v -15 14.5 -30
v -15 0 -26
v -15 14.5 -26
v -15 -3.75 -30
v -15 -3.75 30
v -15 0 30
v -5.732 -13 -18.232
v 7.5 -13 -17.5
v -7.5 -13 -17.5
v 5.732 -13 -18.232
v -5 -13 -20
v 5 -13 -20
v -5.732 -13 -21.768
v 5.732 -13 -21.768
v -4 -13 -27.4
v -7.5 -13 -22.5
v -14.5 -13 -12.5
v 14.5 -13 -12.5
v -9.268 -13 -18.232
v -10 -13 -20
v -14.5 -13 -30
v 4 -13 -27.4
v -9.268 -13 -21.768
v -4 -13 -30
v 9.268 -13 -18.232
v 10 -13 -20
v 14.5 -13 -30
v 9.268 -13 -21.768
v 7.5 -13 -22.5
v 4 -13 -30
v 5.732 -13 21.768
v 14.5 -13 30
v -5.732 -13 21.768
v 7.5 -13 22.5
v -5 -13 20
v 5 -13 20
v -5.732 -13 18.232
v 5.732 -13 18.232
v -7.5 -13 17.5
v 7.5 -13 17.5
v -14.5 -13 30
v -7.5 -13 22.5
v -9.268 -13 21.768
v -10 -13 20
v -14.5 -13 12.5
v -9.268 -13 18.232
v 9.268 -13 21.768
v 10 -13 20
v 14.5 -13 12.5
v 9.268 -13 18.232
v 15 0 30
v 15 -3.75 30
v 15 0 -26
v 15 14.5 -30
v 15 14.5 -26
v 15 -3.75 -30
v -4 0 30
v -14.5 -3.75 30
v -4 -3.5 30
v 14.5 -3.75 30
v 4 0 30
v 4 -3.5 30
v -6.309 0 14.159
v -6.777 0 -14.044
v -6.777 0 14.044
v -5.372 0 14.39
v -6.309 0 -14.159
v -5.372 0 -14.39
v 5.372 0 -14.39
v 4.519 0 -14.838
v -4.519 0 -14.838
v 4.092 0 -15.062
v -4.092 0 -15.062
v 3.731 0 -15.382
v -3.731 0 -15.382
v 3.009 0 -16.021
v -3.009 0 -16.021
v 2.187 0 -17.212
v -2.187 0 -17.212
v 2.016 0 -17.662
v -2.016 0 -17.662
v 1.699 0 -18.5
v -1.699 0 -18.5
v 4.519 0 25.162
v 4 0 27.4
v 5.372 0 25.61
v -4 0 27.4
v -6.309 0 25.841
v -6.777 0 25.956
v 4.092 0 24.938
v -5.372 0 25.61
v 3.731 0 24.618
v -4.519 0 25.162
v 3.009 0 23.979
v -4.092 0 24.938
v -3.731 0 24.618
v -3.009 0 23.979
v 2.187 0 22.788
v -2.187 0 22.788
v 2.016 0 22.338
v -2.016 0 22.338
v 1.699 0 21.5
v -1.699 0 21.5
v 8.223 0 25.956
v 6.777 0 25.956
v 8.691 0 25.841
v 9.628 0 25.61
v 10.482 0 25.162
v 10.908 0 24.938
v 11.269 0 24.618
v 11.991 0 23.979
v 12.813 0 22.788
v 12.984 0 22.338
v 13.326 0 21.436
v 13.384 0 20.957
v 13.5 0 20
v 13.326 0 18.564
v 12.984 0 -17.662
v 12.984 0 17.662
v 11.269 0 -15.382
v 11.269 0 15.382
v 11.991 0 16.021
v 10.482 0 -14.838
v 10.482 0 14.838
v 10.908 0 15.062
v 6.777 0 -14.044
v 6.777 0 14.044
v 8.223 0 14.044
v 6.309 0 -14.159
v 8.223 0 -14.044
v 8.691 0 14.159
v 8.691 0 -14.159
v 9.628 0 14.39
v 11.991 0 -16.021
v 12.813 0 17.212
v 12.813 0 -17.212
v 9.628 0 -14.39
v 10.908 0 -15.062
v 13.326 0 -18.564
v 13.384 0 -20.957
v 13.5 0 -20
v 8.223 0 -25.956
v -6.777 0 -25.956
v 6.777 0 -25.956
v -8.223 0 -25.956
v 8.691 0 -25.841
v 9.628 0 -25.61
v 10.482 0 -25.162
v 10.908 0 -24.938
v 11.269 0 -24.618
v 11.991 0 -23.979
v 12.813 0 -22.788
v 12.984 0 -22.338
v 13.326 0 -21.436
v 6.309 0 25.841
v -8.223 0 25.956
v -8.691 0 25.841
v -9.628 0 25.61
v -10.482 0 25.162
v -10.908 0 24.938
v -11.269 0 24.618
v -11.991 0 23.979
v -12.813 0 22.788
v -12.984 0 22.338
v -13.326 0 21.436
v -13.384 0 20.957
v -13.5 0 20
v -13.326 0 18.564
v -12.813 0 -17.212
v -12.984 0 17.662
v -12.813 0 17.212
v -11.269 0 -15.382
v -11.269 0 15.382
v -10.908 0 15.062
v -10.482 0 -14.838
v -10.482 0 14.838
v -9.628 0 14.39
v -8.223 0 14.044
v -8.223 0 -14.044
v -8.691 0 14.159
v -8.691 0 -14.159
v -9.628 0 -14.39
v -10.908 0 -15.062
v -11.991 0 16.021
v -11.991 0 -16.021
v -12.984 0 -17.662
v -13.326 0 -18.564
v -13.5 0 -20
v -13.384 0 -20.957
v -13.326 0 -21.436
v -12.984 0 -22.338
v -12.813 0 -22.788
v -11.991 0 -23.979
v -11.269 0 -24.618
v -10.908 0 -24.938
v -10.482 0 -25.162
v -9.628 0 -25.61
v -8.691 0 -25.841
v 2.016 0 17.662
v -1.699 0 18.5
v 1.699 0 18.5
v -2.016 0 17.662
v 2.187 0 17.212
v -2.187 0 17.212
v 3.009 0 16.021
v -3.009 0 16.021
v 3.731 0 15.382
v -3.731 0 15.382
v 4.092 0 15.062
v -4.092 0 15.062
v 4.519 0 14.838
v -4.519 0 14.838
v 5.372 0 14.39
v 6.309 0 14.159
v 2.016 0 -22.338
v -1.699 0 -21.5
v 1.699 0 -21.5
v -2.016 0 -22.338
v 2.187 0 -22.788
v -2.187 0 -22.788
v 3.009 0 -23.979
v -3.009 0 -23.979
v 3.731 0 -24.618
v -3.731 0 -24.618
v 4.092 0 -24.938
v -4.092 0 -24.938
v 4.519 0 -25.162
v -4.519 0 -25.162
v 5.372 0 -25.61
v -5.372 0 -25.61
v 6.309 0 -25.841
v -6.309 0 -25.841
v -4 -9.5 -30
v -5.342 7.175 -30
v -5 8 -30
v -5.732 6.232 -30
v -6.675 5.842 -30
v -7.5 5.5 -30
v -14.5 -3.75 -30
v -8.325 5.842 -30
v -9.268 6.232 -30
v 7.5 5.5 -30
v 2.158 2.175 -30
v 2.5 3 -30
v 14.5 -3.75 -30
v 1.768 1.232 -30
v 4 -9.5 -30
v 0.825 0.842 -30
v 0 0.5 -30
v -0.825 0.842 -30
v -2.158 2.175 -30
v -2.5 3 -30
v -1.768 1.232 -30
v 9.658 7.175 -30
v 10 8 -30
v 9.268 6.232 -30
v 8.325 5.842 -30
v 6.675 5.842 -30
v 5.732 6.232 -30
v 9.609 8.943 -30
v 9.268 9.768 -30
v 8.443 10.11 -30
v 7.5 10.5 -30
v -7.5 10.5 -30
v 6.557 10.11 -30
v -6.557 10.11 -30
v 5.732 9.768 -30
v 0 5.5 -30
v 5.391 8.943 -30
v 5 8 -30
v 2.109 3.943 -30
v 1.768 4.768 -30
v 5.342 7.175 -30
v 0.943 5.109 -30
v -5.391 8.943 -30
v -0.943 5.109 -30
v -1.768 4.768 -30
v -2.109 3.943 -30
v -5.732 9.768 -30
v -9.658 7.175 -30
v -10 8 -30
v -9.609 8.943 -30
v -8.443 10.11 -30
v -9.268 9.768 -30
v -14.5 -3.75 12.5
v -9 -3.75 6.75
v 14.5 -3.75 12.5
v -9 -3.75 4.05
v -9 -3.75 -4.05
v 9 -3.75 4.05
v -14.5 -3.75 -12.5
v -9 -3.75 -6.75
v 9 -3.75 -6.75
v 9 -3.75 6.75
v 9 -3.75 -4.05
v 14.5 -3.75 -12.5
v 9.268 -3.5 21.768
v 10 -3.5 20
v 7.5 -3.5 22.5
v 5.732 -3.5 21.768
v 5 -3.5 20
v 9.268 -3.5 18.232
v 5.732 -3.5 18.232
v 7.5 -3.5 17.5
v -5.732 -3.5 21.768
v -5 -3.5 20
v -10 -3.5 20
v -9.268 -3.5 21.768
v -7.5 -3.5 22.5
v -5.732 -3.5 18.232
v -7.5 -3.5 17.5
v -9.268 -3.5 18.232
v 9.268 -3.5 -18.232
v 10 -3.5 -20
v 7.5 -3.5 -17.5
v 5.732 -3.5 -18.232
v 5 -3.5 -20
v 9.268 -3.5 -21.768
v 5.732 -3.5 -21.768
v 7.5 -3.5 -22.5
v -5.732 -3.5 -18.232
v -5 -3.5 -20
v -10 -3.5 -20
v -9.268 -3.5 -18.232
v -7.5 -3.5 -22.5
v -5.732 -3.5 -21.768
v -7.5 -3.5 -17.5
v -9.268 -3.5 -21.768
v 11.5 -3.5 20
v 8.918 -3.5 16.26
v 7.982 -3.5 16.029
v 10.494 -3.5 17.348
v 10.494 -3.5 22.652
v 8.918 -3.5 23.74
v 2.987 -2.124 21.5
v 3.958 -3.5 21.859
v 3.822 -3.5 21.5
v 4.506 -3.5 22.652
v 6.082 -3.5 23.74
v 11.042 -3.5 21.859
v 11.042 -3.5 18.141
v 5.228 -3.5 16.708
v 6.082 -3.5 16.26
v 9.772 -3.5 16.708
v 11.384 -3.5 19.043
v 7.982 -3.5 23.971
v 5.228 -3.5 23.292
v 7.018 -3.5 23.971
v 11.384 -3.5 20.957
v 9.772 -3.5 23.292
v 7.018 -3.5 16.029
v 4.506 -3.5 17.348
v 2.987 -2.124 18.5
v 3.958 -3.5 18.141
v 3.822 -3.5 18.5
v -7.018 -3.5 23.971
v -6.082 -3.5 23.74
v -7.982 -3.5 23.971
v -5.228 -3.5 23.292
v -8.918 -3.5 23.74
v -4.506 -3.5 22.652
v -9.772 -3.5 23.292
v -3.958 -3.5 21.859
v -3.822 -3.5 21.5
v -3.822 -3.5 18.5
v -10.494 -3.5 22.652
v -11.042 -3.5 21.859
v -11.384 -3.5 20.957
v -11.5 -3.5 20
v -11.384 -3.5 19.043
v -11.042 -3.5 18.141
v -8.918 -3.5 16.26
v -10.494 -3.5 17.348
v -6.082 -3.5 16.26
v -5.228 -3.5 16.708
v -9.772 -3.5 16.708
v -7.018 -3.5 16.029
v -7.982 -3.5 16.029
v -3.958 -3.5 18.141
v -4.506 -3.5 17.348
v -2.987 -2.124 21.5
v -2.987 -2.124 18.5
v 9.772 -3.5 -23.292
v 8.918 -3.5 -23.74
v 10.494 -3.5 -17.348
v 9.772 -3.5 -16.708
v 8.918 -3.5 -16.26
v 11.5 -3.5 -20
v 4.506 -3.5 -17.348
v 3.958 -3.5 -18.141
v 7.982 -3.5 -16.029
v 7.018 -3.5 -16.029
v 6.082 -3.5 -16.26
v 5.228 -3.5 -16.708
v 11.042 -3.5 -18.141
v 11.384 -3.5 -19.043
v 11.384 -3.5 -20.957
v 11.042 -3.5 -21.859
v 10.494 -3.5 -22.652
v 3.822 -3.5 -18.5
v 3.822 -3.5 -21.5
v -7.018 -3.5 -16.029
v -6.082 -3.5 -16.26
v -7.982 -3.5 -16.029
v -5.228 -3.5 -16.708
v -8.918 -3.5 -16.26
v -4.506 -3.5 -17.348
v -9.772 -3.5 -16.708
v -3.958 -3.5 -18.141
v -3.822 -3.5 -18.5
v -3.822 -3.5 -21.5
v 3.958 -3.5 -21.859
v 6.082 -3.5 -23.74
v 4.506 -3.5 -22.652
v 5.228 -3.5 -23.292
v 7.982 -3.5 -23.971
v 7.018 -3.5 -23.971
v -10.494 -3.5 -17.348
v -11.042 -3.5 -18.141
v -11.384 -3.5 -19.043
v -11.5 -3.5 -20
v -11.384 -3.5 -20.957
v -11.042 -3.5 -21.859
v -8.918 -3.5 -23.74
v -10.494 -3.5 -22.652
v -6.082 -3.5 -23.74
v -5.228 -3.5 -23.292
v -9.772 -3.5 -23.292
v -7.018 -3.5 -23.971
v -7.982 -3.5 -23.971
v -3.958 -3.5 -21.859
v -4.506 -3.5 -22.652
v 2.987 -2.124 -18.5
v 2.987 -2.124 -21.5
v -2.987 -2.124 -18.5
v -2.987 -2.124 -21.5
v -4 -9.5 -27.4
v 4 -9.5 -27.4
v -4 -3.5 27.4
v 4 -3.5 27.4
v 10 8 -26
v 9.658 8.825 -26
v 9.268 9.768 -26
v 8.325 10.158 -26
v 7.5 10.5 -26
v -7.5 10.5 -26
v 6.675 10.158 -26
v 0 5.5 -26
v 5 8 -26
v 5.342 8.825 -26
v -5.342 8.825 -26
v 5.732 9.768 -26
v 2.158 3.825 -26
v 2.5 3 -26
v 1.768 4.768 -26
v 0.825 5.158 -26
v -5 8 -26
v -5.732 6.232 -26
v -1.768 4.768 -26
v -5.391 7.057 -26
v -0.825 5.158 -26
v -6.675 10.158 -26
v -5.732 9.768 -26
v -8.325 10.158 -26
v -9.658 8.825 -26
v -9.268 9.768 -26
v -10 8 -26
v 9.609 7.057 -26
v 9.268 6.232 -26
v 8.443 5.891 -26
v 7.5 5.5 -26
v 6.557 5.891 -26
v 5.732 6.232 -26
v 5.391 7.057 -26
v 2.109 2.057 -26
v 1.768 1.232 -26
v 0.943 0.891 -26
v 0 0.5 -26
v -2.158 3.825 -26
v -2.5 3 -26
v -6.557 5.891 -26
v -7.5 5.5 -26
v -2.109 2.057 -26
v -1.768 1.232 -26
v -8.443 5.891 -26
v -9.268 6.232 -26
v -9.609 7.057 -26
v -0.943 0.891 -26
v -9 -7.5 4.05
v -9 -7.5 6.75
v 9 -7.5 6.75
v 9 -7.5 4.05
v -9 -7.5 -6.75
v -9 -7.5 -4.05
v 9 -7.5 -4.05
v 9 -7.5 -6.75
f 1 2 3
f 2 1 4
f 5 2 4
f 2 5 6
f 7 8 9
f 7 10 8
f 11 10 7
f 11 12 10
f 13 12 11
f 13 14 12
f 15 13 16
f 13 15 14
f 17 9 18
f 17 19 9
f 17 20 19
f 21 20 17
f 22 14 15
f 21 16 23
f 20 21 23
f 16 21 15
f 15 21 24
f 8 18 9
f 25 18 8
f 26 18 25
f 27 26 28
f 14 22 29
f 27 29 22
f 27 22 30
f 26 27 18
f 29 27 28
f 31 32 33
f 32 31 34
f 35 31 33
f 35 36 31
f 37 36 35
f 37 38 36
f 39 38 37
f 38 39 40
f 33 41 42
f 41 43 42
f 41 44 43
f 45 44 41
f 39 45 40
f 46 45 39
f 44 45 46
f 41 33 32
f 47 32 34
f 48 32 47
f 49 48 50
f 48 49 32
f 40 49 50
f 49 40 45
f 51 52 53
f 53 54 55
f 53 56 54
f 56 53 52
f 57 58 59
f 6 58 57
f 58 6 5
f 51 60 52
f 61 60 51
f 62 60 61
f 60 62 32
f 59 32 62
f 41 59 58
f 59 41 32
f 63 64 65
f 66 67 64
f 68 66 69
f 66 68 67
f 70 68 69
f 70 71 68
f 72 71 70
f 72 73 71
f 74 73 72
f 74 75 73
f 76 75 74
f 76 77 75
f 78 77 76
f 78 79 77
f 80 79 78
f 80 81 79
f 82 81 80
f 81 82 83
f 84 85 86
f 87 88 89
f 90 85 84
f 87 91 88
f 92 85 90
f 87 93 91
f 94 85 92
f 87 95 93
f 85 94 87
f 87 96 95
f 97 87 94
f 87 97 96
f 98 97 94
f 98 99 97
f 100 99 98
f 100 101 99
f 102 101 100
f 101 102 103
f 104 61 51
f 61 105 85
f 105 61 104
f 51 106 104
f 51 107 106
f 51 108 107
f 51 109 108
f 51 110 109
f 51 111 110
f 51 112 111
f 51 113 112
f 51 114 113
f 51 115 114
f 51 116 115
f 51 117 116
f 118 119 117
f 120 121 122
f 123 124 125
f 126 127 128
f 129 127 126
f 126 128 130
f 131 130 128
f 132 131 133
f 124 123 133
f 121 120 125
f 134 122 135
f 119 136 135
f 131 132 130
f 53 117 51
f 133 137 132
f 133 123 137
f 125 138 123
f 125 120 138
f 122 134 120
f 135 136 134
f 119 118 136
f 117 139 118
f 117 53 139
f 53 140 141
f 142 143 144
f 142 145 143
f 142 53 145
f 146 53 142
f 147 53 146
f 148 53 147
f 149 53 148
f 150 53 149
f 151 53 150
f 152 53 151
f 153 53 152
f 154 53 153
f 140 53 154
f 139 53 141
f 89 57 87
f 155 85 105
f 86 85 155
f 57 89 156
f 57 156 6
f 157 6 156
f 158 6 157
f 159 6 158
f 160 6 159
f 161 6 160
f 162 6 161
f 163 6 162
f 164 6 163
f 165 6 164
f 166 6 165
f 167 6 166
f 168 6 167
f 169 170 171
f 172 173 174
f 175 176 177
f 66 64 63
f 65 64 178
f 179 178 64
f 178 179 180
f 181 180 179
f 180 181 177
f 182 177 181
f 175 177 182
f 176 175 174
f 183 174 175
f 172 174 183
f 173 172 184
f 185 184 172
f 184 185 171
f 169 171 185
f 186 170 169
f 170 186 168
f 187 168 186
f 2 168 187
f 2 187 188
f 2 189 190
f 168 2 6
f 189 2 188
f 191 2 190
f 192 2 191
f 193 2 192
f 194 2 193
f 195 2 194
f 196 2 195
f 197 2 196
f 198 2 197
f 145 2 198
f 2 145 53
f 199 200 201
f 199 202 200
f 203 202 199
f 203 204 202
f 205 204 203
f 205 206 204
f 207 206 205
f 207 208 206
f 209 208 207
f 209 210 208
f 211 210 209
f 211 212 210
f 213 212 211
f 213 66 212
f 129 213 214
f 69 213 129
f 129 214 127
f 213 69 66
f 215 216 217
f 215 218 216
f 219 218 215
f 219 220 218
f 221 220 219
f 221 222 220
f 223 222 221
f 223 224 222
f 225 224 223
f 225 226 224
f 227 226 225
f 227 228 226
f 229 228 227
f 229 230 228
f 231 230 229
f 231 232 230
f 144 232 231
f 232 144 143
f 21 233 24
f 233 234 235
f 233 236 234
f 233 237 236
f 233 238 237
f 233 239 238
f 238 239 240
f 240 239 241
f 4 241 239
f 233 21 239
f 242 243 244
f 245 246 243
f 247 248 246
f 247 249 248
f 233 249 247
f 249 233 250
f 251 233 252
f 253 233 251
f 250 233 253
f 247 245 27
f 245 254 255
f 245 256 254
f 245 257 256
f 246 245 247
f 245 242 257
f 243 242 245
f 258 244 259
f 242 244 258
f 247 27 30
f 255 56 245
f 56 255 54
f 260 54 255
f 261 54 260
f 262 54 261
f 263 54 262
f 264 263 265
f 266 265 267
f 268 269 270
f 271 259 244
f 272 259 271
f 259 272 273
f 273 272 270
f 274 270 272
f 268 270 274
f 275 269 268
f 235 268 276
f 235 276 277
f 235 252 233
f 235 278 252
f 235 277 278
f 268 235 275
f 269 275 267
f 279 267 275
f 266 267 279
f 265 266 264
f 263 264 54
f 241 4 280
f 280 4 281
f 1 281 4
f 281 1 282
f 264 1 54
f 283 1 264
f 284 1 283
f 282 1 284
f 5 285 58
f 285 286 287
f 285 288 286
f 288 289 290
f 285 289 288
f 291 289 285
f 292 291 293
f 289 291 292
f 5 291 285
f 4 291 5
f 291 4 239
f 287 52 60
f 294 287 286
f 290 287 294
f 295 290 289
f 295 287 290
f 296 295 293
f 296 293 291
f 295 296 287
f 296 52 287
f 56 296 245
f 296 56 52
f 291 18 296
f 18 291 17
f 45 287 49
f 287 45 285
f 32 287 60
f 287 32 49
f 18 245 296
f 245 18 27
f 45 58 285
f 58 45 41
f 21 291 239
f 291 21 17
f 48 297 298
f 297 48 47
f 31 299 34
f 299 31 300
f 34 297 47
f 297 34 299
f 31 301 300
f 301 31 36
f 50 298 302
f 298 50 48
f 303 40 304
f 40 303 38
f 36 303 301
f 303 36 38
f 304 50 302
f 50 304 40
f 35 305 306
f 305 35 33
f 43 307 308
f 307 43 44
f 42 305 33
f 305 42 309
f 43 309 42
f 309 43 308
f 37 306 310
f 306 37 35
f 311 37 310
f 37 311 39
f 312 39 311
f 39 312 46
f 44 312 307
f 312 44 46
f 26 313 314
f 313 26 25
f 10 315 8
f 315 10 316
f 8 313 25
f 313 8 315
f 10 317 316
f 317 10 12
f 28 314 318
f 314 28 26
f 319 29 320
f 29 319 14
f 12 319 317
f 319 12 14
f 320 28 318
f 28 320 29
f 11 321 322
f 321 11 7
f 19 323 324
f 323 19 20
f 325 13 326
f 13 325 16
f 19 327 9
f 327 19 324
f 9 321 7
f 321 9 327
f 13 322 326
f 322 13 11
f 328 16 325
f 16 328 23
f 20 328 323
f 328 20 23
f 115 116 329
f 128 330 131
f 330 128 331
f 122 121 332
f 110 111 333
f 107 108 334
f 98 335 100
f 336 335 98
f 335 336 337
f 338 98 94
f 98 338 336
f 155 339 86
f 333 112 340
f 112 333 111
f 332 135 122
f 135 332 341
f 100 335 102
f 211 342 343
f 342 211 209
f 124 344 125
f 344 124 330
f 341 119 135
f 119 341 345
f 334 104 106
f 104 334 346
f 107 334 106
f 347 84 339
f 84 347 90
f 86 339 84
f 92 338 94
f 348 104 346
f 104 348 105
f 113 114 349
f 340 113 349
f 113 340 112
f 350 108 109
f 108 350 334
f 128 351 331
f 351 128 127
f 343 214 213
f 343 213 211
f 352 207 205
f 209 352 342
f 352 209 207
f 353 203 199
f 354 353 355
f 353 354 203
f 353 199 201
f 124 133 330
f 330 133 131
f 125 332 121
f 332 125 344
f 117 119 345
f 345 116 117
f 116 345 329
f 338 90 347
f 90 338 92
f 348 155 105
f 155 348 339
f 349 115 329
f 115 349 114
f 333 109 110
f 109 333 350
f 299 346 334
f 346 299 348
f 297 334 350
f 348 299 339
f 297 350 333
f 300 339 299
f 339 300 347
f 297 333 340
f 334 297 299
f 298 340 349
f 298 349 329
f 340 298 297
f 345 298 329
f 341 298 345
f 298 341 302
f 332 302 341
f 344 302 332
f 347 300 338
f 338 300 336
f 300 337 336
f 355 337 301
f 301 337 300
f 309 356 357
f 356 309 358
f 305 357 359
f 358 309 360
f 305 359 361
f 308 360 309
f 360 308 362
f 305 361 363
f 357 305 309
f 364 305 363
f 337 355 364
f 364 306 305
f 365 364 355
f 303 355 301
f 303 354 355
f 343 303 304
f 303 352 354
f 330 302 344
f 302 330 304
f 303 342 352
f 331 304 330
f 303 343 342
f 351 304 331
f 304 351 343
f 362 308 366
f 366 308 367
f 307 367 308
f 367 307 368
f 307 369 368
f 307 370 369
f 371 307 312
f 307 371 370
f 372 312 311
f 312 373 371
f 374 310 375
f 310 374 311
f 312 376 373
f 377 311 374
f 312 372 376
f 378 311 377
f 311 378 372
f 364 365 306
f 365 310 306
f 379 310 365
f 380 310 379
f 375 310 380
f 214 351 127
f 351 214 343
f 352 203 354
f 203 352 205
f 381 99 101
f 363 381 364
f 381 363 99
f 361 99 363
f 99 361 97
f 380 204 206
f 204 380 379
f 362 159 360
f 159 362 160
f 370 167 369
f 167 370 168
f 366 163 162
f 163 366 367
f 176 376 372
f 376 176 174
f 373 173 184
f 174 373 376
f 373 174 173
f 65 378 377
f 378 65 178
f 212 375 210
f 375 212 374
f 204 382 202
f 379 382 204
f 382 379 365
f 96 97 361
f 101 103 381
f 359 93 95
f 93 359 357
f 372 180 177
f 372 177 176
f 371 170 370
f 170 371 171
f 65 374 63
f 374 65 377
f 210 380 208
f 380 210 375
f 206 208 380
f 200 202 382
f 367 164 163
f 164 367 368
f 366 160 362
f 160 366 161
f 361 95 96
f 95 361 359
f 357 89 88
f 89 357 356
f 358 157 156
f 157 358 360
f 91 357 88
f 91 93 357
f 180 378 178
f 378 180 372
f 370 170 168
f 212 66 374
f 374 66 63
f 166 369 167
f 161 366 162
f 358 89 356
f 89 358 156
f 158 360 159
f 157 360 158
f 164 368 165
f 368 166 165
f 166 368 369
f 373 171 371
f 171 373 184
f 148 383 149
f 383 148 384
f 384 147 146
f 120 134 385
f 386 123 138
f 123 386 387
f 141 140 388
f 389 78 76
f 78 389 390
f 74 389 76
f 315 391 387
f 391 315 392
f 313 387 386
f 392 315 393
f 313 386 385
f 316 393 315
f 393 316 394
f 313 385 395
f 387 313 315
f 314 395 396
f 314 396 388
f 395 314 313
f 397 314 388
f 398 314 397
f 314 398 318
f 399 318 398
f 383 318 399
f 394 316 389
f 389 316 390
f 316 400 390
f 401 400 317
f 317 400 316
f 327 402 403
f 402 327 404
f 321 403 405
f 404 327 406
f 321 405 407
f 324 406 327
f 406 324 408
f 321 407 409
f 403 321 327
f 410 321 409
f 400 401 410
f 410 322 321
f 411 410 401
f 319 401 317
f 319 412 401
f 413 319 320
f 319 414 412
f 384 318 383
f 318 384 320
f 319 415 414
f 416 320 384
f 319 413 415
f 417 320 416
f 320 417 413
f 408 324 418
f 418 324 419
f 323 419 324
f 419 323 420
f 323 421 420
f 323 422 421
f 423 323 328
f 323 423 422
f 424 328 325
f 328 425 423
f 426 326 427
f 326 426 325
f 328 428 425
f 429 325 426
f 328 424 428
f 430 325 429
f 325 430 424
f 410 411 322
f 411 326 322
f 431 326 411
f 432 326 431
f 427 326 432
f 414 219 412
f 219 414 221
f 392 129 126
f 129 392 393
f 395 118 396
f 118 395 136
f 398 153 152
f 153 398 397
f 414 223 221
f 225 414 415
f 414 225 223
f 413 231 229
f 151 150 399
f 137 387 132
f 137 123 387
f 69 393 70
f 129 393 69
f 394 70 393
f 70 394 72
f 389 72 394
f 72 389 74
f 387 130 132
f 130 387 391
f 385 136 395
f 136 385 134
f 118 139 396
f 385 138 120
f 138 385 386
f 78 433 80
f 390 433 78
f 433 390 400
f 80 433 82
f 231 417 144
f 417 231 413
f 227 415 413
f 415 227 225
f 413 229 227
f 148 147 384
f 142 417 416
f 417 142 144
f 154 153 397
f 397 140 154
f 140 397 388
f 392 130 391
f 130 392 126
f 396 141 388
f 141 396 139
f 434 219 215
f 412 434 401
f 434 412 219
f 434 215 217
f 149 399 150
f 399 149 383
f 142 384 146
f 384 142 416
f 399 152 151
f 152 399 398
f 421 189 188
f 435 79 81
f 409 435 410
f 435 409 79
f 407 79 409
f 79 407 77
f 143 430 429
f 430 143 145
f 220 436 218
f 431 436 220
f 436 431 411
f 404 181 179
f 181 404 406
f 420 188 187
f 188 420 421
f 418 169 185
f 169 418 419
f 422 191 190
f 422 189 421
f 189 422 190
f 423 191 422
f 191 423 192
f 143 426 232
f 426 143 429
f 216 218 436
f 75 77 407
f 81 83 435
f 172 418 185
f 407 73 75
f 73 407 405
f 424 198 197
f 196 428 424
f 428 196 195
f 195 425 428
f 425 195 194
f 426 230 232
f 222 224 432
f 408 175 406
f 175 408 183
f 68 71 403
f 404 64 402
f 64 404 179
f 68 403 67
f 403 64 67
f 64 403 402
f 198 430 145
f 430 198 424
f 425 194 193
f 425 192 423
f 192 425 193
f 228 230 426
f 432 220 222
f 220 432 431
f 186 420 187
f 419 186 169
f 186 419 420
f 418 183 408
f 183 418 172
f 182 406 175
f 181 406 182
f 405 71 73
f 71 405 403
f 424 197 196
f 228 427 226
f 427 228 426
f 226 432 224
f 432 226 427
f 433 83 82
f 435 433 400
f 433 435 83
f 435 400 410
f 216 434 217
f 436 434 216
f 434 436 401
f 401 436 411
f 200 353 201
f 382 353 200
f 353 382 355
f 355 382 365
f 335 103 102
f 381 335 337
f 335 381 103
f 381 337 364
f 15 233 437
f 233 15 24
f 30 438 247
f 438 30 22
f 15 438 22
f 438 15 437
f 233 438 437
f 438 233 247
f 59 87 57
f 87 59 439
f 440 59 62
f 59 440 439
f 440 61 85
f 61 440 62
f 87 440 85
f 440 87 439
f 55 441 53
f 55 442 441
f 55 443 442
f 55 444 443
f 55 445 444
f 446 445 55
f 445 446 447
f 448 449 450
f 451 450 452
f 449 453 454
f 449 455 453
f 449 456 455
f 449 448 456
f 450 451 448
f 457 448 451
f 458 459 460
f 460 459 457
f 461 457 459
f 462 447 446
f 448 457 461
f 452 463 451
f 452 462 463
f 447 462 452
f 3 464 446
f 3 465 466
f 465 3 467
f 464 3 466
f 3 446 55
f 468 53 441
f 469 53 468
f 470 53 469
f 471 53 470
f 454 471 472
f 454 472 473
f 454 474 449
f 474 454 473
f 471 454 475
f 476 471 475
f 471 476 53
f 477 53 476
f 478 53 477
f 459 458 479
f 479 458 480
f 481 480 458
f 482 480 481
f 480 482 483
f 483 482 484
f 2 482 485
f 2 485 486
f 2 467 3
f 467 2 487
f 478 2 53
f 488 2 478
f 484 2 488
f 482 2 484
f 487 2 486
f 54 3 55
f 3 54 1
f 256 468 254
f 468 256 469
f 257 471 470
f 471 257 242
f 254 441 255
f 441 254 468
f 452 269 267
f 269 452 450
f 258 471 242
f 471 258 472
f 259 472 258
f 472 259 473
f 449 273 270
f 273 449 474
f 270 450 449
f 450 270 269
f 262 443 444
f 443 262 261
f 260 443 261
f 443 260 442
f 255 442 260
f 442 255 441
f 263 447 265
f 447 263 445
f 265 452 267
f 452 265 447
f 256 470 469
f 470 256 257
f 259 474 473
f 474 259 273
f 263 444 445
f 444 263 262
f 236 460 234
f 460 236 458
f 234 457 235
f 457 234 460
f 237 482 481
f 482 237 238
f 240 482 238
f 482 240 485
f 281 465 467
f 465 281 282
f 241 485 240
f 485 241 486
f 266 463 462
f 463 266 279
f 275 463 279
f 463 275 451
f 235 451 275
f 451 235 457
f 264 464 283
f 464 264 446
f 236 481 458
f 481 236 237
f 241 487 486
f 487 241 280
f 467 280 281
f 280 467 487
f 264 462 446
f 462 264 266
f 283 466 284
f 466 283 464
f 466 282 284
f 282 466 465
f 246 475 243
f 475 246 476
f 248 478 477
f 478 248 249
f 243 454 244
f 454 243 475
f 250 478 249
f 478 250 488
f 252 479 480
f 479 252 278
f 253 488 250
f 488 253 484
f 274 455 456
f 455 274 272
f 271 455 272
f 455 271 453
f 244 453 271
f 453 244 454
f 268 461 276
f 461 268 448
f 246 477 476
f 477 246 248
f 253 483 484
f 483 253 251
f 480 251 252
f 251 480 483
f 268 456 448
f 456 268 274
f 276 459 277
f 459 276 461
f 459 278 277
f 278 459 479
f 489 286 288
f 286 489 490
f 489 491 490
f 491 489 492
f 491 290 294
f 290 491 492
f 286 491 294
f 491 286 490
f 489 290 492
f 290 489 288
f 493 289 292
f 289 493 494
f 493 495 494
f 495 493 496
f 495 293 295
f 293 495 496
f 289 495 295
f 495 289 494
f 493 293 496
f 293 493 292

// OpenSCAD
//block shape
x=30;
y=60;
z=13;

// track channel
f=x+10;
g=25;
h=9.5;
// block top
e=20;
r=y+10;
t=16.5;

// spacing of screw holes
cx=15;
cy=40;
dx=15;
dy=45;

// rotation
gx=90;

rotate([gx,0,0])
difference()
{
    translate([0,0,z]/2) cube ([x,y,z],center=true);
    translate([0,0,z+4]/2) cube([f,g,h],center=true);
    translate([49,0,z+11]/2) cube ([e,r,t],center=true);
        translate([-49,0,z+11]/2) cube ([e,r,t],center=true);

  translate([cx,cy,0]/2) cylinder(d=5, h=50,  center=true);
  translate([-cx,cy,0]/2) cylinder(d=5, h=50,  center=true);
    translate([cx,-cy,0]/2) cylinder(d=5, h=50,  center=true);
    translate([-cx,-cy,0]/2) cylinder(d=5, h=50,  center=true);
  translate([dy,dy,0]/2) cylinder(d=5, h=50,  center=true);
  translate([-dy,dy,0]/2) cylinder(d=5, h=50,  center=true);
    translate([dy,-dy,0]/2) cylinder(d=5, h=50,  center=true);
    translate([-dy,-dy,0]/2) cylinder(d=5, h=50,  center=true);  
    translate([dy,dx,0]/2) cylinder(d=5, h=50,  center=true);
  translate([-dy,dx,0]/2) cylinder(d=5, h=50,  center=true);  
  translate([dy,-dx,0]/2) cylinder(d=5, h=50,  center=true);
  translate([-dy,-dx,0]/2) cylinder(d=5, h=50,  center=true);  
    
 translate([cx,cy,0]/2)  cylinder(d1=16, d2=8, h=7,  center=true);
 translate([-cx,cy,0]/2) cylinder(d1=16, d2=8, h=7, center=true);
    translate([cx,-cy,0]/2) cylinder(d1=16, d2=8, h=7,  center=true);
    translate([-cx,-cy,0]/2) cylinder(d1=16, d2=8, h=7,  center=true);    
// zip tie knotches    
    translate([0,-cy/2,11.5-10]) cube([18,3,4],center=true);
    translate([0,cy/2,11.5-10]) cube([18,3,4],center=true);
// removal knotches
       translate([0,-(6.8+51)/2,11.5]) cube([8,3,4],center=true);
   translate([0,(6.8+51)/2,11.5-10]) cube([8,3,4],center=true);
   translate([(6.8+51)/2,0,11.5-11]) cube([3,8,2],center=true);
   translate([-(6.8+51)/2,0,11.5-11]) cube([3,8,2],center=true);
}

rotate([gx,0,0])
difference ()
{
    translate([0,-28,-7]) cube([30,4,15],center=true);
    translate([7.5,-28,-8])rotate([90,0,0]) cylinder(d=5, h=60, center=true);
      translate([-7.5,-28,-8])rotate([90,0,0]) cylinder(d=5, h=60, center=true);
      translate([0,-28,-3])rotate([90,0,0]) cylinder(d=5, h=60, center=true);
}
rotate([gx,0,0])
translate([0,(6.8+4)/2,z-8]) cube([18,2.7,5],center=true);
rotate([gx,0,0])
translate([0,-(6.8+4)/2,z-8]) cube([18,2.7,5],center=true);
